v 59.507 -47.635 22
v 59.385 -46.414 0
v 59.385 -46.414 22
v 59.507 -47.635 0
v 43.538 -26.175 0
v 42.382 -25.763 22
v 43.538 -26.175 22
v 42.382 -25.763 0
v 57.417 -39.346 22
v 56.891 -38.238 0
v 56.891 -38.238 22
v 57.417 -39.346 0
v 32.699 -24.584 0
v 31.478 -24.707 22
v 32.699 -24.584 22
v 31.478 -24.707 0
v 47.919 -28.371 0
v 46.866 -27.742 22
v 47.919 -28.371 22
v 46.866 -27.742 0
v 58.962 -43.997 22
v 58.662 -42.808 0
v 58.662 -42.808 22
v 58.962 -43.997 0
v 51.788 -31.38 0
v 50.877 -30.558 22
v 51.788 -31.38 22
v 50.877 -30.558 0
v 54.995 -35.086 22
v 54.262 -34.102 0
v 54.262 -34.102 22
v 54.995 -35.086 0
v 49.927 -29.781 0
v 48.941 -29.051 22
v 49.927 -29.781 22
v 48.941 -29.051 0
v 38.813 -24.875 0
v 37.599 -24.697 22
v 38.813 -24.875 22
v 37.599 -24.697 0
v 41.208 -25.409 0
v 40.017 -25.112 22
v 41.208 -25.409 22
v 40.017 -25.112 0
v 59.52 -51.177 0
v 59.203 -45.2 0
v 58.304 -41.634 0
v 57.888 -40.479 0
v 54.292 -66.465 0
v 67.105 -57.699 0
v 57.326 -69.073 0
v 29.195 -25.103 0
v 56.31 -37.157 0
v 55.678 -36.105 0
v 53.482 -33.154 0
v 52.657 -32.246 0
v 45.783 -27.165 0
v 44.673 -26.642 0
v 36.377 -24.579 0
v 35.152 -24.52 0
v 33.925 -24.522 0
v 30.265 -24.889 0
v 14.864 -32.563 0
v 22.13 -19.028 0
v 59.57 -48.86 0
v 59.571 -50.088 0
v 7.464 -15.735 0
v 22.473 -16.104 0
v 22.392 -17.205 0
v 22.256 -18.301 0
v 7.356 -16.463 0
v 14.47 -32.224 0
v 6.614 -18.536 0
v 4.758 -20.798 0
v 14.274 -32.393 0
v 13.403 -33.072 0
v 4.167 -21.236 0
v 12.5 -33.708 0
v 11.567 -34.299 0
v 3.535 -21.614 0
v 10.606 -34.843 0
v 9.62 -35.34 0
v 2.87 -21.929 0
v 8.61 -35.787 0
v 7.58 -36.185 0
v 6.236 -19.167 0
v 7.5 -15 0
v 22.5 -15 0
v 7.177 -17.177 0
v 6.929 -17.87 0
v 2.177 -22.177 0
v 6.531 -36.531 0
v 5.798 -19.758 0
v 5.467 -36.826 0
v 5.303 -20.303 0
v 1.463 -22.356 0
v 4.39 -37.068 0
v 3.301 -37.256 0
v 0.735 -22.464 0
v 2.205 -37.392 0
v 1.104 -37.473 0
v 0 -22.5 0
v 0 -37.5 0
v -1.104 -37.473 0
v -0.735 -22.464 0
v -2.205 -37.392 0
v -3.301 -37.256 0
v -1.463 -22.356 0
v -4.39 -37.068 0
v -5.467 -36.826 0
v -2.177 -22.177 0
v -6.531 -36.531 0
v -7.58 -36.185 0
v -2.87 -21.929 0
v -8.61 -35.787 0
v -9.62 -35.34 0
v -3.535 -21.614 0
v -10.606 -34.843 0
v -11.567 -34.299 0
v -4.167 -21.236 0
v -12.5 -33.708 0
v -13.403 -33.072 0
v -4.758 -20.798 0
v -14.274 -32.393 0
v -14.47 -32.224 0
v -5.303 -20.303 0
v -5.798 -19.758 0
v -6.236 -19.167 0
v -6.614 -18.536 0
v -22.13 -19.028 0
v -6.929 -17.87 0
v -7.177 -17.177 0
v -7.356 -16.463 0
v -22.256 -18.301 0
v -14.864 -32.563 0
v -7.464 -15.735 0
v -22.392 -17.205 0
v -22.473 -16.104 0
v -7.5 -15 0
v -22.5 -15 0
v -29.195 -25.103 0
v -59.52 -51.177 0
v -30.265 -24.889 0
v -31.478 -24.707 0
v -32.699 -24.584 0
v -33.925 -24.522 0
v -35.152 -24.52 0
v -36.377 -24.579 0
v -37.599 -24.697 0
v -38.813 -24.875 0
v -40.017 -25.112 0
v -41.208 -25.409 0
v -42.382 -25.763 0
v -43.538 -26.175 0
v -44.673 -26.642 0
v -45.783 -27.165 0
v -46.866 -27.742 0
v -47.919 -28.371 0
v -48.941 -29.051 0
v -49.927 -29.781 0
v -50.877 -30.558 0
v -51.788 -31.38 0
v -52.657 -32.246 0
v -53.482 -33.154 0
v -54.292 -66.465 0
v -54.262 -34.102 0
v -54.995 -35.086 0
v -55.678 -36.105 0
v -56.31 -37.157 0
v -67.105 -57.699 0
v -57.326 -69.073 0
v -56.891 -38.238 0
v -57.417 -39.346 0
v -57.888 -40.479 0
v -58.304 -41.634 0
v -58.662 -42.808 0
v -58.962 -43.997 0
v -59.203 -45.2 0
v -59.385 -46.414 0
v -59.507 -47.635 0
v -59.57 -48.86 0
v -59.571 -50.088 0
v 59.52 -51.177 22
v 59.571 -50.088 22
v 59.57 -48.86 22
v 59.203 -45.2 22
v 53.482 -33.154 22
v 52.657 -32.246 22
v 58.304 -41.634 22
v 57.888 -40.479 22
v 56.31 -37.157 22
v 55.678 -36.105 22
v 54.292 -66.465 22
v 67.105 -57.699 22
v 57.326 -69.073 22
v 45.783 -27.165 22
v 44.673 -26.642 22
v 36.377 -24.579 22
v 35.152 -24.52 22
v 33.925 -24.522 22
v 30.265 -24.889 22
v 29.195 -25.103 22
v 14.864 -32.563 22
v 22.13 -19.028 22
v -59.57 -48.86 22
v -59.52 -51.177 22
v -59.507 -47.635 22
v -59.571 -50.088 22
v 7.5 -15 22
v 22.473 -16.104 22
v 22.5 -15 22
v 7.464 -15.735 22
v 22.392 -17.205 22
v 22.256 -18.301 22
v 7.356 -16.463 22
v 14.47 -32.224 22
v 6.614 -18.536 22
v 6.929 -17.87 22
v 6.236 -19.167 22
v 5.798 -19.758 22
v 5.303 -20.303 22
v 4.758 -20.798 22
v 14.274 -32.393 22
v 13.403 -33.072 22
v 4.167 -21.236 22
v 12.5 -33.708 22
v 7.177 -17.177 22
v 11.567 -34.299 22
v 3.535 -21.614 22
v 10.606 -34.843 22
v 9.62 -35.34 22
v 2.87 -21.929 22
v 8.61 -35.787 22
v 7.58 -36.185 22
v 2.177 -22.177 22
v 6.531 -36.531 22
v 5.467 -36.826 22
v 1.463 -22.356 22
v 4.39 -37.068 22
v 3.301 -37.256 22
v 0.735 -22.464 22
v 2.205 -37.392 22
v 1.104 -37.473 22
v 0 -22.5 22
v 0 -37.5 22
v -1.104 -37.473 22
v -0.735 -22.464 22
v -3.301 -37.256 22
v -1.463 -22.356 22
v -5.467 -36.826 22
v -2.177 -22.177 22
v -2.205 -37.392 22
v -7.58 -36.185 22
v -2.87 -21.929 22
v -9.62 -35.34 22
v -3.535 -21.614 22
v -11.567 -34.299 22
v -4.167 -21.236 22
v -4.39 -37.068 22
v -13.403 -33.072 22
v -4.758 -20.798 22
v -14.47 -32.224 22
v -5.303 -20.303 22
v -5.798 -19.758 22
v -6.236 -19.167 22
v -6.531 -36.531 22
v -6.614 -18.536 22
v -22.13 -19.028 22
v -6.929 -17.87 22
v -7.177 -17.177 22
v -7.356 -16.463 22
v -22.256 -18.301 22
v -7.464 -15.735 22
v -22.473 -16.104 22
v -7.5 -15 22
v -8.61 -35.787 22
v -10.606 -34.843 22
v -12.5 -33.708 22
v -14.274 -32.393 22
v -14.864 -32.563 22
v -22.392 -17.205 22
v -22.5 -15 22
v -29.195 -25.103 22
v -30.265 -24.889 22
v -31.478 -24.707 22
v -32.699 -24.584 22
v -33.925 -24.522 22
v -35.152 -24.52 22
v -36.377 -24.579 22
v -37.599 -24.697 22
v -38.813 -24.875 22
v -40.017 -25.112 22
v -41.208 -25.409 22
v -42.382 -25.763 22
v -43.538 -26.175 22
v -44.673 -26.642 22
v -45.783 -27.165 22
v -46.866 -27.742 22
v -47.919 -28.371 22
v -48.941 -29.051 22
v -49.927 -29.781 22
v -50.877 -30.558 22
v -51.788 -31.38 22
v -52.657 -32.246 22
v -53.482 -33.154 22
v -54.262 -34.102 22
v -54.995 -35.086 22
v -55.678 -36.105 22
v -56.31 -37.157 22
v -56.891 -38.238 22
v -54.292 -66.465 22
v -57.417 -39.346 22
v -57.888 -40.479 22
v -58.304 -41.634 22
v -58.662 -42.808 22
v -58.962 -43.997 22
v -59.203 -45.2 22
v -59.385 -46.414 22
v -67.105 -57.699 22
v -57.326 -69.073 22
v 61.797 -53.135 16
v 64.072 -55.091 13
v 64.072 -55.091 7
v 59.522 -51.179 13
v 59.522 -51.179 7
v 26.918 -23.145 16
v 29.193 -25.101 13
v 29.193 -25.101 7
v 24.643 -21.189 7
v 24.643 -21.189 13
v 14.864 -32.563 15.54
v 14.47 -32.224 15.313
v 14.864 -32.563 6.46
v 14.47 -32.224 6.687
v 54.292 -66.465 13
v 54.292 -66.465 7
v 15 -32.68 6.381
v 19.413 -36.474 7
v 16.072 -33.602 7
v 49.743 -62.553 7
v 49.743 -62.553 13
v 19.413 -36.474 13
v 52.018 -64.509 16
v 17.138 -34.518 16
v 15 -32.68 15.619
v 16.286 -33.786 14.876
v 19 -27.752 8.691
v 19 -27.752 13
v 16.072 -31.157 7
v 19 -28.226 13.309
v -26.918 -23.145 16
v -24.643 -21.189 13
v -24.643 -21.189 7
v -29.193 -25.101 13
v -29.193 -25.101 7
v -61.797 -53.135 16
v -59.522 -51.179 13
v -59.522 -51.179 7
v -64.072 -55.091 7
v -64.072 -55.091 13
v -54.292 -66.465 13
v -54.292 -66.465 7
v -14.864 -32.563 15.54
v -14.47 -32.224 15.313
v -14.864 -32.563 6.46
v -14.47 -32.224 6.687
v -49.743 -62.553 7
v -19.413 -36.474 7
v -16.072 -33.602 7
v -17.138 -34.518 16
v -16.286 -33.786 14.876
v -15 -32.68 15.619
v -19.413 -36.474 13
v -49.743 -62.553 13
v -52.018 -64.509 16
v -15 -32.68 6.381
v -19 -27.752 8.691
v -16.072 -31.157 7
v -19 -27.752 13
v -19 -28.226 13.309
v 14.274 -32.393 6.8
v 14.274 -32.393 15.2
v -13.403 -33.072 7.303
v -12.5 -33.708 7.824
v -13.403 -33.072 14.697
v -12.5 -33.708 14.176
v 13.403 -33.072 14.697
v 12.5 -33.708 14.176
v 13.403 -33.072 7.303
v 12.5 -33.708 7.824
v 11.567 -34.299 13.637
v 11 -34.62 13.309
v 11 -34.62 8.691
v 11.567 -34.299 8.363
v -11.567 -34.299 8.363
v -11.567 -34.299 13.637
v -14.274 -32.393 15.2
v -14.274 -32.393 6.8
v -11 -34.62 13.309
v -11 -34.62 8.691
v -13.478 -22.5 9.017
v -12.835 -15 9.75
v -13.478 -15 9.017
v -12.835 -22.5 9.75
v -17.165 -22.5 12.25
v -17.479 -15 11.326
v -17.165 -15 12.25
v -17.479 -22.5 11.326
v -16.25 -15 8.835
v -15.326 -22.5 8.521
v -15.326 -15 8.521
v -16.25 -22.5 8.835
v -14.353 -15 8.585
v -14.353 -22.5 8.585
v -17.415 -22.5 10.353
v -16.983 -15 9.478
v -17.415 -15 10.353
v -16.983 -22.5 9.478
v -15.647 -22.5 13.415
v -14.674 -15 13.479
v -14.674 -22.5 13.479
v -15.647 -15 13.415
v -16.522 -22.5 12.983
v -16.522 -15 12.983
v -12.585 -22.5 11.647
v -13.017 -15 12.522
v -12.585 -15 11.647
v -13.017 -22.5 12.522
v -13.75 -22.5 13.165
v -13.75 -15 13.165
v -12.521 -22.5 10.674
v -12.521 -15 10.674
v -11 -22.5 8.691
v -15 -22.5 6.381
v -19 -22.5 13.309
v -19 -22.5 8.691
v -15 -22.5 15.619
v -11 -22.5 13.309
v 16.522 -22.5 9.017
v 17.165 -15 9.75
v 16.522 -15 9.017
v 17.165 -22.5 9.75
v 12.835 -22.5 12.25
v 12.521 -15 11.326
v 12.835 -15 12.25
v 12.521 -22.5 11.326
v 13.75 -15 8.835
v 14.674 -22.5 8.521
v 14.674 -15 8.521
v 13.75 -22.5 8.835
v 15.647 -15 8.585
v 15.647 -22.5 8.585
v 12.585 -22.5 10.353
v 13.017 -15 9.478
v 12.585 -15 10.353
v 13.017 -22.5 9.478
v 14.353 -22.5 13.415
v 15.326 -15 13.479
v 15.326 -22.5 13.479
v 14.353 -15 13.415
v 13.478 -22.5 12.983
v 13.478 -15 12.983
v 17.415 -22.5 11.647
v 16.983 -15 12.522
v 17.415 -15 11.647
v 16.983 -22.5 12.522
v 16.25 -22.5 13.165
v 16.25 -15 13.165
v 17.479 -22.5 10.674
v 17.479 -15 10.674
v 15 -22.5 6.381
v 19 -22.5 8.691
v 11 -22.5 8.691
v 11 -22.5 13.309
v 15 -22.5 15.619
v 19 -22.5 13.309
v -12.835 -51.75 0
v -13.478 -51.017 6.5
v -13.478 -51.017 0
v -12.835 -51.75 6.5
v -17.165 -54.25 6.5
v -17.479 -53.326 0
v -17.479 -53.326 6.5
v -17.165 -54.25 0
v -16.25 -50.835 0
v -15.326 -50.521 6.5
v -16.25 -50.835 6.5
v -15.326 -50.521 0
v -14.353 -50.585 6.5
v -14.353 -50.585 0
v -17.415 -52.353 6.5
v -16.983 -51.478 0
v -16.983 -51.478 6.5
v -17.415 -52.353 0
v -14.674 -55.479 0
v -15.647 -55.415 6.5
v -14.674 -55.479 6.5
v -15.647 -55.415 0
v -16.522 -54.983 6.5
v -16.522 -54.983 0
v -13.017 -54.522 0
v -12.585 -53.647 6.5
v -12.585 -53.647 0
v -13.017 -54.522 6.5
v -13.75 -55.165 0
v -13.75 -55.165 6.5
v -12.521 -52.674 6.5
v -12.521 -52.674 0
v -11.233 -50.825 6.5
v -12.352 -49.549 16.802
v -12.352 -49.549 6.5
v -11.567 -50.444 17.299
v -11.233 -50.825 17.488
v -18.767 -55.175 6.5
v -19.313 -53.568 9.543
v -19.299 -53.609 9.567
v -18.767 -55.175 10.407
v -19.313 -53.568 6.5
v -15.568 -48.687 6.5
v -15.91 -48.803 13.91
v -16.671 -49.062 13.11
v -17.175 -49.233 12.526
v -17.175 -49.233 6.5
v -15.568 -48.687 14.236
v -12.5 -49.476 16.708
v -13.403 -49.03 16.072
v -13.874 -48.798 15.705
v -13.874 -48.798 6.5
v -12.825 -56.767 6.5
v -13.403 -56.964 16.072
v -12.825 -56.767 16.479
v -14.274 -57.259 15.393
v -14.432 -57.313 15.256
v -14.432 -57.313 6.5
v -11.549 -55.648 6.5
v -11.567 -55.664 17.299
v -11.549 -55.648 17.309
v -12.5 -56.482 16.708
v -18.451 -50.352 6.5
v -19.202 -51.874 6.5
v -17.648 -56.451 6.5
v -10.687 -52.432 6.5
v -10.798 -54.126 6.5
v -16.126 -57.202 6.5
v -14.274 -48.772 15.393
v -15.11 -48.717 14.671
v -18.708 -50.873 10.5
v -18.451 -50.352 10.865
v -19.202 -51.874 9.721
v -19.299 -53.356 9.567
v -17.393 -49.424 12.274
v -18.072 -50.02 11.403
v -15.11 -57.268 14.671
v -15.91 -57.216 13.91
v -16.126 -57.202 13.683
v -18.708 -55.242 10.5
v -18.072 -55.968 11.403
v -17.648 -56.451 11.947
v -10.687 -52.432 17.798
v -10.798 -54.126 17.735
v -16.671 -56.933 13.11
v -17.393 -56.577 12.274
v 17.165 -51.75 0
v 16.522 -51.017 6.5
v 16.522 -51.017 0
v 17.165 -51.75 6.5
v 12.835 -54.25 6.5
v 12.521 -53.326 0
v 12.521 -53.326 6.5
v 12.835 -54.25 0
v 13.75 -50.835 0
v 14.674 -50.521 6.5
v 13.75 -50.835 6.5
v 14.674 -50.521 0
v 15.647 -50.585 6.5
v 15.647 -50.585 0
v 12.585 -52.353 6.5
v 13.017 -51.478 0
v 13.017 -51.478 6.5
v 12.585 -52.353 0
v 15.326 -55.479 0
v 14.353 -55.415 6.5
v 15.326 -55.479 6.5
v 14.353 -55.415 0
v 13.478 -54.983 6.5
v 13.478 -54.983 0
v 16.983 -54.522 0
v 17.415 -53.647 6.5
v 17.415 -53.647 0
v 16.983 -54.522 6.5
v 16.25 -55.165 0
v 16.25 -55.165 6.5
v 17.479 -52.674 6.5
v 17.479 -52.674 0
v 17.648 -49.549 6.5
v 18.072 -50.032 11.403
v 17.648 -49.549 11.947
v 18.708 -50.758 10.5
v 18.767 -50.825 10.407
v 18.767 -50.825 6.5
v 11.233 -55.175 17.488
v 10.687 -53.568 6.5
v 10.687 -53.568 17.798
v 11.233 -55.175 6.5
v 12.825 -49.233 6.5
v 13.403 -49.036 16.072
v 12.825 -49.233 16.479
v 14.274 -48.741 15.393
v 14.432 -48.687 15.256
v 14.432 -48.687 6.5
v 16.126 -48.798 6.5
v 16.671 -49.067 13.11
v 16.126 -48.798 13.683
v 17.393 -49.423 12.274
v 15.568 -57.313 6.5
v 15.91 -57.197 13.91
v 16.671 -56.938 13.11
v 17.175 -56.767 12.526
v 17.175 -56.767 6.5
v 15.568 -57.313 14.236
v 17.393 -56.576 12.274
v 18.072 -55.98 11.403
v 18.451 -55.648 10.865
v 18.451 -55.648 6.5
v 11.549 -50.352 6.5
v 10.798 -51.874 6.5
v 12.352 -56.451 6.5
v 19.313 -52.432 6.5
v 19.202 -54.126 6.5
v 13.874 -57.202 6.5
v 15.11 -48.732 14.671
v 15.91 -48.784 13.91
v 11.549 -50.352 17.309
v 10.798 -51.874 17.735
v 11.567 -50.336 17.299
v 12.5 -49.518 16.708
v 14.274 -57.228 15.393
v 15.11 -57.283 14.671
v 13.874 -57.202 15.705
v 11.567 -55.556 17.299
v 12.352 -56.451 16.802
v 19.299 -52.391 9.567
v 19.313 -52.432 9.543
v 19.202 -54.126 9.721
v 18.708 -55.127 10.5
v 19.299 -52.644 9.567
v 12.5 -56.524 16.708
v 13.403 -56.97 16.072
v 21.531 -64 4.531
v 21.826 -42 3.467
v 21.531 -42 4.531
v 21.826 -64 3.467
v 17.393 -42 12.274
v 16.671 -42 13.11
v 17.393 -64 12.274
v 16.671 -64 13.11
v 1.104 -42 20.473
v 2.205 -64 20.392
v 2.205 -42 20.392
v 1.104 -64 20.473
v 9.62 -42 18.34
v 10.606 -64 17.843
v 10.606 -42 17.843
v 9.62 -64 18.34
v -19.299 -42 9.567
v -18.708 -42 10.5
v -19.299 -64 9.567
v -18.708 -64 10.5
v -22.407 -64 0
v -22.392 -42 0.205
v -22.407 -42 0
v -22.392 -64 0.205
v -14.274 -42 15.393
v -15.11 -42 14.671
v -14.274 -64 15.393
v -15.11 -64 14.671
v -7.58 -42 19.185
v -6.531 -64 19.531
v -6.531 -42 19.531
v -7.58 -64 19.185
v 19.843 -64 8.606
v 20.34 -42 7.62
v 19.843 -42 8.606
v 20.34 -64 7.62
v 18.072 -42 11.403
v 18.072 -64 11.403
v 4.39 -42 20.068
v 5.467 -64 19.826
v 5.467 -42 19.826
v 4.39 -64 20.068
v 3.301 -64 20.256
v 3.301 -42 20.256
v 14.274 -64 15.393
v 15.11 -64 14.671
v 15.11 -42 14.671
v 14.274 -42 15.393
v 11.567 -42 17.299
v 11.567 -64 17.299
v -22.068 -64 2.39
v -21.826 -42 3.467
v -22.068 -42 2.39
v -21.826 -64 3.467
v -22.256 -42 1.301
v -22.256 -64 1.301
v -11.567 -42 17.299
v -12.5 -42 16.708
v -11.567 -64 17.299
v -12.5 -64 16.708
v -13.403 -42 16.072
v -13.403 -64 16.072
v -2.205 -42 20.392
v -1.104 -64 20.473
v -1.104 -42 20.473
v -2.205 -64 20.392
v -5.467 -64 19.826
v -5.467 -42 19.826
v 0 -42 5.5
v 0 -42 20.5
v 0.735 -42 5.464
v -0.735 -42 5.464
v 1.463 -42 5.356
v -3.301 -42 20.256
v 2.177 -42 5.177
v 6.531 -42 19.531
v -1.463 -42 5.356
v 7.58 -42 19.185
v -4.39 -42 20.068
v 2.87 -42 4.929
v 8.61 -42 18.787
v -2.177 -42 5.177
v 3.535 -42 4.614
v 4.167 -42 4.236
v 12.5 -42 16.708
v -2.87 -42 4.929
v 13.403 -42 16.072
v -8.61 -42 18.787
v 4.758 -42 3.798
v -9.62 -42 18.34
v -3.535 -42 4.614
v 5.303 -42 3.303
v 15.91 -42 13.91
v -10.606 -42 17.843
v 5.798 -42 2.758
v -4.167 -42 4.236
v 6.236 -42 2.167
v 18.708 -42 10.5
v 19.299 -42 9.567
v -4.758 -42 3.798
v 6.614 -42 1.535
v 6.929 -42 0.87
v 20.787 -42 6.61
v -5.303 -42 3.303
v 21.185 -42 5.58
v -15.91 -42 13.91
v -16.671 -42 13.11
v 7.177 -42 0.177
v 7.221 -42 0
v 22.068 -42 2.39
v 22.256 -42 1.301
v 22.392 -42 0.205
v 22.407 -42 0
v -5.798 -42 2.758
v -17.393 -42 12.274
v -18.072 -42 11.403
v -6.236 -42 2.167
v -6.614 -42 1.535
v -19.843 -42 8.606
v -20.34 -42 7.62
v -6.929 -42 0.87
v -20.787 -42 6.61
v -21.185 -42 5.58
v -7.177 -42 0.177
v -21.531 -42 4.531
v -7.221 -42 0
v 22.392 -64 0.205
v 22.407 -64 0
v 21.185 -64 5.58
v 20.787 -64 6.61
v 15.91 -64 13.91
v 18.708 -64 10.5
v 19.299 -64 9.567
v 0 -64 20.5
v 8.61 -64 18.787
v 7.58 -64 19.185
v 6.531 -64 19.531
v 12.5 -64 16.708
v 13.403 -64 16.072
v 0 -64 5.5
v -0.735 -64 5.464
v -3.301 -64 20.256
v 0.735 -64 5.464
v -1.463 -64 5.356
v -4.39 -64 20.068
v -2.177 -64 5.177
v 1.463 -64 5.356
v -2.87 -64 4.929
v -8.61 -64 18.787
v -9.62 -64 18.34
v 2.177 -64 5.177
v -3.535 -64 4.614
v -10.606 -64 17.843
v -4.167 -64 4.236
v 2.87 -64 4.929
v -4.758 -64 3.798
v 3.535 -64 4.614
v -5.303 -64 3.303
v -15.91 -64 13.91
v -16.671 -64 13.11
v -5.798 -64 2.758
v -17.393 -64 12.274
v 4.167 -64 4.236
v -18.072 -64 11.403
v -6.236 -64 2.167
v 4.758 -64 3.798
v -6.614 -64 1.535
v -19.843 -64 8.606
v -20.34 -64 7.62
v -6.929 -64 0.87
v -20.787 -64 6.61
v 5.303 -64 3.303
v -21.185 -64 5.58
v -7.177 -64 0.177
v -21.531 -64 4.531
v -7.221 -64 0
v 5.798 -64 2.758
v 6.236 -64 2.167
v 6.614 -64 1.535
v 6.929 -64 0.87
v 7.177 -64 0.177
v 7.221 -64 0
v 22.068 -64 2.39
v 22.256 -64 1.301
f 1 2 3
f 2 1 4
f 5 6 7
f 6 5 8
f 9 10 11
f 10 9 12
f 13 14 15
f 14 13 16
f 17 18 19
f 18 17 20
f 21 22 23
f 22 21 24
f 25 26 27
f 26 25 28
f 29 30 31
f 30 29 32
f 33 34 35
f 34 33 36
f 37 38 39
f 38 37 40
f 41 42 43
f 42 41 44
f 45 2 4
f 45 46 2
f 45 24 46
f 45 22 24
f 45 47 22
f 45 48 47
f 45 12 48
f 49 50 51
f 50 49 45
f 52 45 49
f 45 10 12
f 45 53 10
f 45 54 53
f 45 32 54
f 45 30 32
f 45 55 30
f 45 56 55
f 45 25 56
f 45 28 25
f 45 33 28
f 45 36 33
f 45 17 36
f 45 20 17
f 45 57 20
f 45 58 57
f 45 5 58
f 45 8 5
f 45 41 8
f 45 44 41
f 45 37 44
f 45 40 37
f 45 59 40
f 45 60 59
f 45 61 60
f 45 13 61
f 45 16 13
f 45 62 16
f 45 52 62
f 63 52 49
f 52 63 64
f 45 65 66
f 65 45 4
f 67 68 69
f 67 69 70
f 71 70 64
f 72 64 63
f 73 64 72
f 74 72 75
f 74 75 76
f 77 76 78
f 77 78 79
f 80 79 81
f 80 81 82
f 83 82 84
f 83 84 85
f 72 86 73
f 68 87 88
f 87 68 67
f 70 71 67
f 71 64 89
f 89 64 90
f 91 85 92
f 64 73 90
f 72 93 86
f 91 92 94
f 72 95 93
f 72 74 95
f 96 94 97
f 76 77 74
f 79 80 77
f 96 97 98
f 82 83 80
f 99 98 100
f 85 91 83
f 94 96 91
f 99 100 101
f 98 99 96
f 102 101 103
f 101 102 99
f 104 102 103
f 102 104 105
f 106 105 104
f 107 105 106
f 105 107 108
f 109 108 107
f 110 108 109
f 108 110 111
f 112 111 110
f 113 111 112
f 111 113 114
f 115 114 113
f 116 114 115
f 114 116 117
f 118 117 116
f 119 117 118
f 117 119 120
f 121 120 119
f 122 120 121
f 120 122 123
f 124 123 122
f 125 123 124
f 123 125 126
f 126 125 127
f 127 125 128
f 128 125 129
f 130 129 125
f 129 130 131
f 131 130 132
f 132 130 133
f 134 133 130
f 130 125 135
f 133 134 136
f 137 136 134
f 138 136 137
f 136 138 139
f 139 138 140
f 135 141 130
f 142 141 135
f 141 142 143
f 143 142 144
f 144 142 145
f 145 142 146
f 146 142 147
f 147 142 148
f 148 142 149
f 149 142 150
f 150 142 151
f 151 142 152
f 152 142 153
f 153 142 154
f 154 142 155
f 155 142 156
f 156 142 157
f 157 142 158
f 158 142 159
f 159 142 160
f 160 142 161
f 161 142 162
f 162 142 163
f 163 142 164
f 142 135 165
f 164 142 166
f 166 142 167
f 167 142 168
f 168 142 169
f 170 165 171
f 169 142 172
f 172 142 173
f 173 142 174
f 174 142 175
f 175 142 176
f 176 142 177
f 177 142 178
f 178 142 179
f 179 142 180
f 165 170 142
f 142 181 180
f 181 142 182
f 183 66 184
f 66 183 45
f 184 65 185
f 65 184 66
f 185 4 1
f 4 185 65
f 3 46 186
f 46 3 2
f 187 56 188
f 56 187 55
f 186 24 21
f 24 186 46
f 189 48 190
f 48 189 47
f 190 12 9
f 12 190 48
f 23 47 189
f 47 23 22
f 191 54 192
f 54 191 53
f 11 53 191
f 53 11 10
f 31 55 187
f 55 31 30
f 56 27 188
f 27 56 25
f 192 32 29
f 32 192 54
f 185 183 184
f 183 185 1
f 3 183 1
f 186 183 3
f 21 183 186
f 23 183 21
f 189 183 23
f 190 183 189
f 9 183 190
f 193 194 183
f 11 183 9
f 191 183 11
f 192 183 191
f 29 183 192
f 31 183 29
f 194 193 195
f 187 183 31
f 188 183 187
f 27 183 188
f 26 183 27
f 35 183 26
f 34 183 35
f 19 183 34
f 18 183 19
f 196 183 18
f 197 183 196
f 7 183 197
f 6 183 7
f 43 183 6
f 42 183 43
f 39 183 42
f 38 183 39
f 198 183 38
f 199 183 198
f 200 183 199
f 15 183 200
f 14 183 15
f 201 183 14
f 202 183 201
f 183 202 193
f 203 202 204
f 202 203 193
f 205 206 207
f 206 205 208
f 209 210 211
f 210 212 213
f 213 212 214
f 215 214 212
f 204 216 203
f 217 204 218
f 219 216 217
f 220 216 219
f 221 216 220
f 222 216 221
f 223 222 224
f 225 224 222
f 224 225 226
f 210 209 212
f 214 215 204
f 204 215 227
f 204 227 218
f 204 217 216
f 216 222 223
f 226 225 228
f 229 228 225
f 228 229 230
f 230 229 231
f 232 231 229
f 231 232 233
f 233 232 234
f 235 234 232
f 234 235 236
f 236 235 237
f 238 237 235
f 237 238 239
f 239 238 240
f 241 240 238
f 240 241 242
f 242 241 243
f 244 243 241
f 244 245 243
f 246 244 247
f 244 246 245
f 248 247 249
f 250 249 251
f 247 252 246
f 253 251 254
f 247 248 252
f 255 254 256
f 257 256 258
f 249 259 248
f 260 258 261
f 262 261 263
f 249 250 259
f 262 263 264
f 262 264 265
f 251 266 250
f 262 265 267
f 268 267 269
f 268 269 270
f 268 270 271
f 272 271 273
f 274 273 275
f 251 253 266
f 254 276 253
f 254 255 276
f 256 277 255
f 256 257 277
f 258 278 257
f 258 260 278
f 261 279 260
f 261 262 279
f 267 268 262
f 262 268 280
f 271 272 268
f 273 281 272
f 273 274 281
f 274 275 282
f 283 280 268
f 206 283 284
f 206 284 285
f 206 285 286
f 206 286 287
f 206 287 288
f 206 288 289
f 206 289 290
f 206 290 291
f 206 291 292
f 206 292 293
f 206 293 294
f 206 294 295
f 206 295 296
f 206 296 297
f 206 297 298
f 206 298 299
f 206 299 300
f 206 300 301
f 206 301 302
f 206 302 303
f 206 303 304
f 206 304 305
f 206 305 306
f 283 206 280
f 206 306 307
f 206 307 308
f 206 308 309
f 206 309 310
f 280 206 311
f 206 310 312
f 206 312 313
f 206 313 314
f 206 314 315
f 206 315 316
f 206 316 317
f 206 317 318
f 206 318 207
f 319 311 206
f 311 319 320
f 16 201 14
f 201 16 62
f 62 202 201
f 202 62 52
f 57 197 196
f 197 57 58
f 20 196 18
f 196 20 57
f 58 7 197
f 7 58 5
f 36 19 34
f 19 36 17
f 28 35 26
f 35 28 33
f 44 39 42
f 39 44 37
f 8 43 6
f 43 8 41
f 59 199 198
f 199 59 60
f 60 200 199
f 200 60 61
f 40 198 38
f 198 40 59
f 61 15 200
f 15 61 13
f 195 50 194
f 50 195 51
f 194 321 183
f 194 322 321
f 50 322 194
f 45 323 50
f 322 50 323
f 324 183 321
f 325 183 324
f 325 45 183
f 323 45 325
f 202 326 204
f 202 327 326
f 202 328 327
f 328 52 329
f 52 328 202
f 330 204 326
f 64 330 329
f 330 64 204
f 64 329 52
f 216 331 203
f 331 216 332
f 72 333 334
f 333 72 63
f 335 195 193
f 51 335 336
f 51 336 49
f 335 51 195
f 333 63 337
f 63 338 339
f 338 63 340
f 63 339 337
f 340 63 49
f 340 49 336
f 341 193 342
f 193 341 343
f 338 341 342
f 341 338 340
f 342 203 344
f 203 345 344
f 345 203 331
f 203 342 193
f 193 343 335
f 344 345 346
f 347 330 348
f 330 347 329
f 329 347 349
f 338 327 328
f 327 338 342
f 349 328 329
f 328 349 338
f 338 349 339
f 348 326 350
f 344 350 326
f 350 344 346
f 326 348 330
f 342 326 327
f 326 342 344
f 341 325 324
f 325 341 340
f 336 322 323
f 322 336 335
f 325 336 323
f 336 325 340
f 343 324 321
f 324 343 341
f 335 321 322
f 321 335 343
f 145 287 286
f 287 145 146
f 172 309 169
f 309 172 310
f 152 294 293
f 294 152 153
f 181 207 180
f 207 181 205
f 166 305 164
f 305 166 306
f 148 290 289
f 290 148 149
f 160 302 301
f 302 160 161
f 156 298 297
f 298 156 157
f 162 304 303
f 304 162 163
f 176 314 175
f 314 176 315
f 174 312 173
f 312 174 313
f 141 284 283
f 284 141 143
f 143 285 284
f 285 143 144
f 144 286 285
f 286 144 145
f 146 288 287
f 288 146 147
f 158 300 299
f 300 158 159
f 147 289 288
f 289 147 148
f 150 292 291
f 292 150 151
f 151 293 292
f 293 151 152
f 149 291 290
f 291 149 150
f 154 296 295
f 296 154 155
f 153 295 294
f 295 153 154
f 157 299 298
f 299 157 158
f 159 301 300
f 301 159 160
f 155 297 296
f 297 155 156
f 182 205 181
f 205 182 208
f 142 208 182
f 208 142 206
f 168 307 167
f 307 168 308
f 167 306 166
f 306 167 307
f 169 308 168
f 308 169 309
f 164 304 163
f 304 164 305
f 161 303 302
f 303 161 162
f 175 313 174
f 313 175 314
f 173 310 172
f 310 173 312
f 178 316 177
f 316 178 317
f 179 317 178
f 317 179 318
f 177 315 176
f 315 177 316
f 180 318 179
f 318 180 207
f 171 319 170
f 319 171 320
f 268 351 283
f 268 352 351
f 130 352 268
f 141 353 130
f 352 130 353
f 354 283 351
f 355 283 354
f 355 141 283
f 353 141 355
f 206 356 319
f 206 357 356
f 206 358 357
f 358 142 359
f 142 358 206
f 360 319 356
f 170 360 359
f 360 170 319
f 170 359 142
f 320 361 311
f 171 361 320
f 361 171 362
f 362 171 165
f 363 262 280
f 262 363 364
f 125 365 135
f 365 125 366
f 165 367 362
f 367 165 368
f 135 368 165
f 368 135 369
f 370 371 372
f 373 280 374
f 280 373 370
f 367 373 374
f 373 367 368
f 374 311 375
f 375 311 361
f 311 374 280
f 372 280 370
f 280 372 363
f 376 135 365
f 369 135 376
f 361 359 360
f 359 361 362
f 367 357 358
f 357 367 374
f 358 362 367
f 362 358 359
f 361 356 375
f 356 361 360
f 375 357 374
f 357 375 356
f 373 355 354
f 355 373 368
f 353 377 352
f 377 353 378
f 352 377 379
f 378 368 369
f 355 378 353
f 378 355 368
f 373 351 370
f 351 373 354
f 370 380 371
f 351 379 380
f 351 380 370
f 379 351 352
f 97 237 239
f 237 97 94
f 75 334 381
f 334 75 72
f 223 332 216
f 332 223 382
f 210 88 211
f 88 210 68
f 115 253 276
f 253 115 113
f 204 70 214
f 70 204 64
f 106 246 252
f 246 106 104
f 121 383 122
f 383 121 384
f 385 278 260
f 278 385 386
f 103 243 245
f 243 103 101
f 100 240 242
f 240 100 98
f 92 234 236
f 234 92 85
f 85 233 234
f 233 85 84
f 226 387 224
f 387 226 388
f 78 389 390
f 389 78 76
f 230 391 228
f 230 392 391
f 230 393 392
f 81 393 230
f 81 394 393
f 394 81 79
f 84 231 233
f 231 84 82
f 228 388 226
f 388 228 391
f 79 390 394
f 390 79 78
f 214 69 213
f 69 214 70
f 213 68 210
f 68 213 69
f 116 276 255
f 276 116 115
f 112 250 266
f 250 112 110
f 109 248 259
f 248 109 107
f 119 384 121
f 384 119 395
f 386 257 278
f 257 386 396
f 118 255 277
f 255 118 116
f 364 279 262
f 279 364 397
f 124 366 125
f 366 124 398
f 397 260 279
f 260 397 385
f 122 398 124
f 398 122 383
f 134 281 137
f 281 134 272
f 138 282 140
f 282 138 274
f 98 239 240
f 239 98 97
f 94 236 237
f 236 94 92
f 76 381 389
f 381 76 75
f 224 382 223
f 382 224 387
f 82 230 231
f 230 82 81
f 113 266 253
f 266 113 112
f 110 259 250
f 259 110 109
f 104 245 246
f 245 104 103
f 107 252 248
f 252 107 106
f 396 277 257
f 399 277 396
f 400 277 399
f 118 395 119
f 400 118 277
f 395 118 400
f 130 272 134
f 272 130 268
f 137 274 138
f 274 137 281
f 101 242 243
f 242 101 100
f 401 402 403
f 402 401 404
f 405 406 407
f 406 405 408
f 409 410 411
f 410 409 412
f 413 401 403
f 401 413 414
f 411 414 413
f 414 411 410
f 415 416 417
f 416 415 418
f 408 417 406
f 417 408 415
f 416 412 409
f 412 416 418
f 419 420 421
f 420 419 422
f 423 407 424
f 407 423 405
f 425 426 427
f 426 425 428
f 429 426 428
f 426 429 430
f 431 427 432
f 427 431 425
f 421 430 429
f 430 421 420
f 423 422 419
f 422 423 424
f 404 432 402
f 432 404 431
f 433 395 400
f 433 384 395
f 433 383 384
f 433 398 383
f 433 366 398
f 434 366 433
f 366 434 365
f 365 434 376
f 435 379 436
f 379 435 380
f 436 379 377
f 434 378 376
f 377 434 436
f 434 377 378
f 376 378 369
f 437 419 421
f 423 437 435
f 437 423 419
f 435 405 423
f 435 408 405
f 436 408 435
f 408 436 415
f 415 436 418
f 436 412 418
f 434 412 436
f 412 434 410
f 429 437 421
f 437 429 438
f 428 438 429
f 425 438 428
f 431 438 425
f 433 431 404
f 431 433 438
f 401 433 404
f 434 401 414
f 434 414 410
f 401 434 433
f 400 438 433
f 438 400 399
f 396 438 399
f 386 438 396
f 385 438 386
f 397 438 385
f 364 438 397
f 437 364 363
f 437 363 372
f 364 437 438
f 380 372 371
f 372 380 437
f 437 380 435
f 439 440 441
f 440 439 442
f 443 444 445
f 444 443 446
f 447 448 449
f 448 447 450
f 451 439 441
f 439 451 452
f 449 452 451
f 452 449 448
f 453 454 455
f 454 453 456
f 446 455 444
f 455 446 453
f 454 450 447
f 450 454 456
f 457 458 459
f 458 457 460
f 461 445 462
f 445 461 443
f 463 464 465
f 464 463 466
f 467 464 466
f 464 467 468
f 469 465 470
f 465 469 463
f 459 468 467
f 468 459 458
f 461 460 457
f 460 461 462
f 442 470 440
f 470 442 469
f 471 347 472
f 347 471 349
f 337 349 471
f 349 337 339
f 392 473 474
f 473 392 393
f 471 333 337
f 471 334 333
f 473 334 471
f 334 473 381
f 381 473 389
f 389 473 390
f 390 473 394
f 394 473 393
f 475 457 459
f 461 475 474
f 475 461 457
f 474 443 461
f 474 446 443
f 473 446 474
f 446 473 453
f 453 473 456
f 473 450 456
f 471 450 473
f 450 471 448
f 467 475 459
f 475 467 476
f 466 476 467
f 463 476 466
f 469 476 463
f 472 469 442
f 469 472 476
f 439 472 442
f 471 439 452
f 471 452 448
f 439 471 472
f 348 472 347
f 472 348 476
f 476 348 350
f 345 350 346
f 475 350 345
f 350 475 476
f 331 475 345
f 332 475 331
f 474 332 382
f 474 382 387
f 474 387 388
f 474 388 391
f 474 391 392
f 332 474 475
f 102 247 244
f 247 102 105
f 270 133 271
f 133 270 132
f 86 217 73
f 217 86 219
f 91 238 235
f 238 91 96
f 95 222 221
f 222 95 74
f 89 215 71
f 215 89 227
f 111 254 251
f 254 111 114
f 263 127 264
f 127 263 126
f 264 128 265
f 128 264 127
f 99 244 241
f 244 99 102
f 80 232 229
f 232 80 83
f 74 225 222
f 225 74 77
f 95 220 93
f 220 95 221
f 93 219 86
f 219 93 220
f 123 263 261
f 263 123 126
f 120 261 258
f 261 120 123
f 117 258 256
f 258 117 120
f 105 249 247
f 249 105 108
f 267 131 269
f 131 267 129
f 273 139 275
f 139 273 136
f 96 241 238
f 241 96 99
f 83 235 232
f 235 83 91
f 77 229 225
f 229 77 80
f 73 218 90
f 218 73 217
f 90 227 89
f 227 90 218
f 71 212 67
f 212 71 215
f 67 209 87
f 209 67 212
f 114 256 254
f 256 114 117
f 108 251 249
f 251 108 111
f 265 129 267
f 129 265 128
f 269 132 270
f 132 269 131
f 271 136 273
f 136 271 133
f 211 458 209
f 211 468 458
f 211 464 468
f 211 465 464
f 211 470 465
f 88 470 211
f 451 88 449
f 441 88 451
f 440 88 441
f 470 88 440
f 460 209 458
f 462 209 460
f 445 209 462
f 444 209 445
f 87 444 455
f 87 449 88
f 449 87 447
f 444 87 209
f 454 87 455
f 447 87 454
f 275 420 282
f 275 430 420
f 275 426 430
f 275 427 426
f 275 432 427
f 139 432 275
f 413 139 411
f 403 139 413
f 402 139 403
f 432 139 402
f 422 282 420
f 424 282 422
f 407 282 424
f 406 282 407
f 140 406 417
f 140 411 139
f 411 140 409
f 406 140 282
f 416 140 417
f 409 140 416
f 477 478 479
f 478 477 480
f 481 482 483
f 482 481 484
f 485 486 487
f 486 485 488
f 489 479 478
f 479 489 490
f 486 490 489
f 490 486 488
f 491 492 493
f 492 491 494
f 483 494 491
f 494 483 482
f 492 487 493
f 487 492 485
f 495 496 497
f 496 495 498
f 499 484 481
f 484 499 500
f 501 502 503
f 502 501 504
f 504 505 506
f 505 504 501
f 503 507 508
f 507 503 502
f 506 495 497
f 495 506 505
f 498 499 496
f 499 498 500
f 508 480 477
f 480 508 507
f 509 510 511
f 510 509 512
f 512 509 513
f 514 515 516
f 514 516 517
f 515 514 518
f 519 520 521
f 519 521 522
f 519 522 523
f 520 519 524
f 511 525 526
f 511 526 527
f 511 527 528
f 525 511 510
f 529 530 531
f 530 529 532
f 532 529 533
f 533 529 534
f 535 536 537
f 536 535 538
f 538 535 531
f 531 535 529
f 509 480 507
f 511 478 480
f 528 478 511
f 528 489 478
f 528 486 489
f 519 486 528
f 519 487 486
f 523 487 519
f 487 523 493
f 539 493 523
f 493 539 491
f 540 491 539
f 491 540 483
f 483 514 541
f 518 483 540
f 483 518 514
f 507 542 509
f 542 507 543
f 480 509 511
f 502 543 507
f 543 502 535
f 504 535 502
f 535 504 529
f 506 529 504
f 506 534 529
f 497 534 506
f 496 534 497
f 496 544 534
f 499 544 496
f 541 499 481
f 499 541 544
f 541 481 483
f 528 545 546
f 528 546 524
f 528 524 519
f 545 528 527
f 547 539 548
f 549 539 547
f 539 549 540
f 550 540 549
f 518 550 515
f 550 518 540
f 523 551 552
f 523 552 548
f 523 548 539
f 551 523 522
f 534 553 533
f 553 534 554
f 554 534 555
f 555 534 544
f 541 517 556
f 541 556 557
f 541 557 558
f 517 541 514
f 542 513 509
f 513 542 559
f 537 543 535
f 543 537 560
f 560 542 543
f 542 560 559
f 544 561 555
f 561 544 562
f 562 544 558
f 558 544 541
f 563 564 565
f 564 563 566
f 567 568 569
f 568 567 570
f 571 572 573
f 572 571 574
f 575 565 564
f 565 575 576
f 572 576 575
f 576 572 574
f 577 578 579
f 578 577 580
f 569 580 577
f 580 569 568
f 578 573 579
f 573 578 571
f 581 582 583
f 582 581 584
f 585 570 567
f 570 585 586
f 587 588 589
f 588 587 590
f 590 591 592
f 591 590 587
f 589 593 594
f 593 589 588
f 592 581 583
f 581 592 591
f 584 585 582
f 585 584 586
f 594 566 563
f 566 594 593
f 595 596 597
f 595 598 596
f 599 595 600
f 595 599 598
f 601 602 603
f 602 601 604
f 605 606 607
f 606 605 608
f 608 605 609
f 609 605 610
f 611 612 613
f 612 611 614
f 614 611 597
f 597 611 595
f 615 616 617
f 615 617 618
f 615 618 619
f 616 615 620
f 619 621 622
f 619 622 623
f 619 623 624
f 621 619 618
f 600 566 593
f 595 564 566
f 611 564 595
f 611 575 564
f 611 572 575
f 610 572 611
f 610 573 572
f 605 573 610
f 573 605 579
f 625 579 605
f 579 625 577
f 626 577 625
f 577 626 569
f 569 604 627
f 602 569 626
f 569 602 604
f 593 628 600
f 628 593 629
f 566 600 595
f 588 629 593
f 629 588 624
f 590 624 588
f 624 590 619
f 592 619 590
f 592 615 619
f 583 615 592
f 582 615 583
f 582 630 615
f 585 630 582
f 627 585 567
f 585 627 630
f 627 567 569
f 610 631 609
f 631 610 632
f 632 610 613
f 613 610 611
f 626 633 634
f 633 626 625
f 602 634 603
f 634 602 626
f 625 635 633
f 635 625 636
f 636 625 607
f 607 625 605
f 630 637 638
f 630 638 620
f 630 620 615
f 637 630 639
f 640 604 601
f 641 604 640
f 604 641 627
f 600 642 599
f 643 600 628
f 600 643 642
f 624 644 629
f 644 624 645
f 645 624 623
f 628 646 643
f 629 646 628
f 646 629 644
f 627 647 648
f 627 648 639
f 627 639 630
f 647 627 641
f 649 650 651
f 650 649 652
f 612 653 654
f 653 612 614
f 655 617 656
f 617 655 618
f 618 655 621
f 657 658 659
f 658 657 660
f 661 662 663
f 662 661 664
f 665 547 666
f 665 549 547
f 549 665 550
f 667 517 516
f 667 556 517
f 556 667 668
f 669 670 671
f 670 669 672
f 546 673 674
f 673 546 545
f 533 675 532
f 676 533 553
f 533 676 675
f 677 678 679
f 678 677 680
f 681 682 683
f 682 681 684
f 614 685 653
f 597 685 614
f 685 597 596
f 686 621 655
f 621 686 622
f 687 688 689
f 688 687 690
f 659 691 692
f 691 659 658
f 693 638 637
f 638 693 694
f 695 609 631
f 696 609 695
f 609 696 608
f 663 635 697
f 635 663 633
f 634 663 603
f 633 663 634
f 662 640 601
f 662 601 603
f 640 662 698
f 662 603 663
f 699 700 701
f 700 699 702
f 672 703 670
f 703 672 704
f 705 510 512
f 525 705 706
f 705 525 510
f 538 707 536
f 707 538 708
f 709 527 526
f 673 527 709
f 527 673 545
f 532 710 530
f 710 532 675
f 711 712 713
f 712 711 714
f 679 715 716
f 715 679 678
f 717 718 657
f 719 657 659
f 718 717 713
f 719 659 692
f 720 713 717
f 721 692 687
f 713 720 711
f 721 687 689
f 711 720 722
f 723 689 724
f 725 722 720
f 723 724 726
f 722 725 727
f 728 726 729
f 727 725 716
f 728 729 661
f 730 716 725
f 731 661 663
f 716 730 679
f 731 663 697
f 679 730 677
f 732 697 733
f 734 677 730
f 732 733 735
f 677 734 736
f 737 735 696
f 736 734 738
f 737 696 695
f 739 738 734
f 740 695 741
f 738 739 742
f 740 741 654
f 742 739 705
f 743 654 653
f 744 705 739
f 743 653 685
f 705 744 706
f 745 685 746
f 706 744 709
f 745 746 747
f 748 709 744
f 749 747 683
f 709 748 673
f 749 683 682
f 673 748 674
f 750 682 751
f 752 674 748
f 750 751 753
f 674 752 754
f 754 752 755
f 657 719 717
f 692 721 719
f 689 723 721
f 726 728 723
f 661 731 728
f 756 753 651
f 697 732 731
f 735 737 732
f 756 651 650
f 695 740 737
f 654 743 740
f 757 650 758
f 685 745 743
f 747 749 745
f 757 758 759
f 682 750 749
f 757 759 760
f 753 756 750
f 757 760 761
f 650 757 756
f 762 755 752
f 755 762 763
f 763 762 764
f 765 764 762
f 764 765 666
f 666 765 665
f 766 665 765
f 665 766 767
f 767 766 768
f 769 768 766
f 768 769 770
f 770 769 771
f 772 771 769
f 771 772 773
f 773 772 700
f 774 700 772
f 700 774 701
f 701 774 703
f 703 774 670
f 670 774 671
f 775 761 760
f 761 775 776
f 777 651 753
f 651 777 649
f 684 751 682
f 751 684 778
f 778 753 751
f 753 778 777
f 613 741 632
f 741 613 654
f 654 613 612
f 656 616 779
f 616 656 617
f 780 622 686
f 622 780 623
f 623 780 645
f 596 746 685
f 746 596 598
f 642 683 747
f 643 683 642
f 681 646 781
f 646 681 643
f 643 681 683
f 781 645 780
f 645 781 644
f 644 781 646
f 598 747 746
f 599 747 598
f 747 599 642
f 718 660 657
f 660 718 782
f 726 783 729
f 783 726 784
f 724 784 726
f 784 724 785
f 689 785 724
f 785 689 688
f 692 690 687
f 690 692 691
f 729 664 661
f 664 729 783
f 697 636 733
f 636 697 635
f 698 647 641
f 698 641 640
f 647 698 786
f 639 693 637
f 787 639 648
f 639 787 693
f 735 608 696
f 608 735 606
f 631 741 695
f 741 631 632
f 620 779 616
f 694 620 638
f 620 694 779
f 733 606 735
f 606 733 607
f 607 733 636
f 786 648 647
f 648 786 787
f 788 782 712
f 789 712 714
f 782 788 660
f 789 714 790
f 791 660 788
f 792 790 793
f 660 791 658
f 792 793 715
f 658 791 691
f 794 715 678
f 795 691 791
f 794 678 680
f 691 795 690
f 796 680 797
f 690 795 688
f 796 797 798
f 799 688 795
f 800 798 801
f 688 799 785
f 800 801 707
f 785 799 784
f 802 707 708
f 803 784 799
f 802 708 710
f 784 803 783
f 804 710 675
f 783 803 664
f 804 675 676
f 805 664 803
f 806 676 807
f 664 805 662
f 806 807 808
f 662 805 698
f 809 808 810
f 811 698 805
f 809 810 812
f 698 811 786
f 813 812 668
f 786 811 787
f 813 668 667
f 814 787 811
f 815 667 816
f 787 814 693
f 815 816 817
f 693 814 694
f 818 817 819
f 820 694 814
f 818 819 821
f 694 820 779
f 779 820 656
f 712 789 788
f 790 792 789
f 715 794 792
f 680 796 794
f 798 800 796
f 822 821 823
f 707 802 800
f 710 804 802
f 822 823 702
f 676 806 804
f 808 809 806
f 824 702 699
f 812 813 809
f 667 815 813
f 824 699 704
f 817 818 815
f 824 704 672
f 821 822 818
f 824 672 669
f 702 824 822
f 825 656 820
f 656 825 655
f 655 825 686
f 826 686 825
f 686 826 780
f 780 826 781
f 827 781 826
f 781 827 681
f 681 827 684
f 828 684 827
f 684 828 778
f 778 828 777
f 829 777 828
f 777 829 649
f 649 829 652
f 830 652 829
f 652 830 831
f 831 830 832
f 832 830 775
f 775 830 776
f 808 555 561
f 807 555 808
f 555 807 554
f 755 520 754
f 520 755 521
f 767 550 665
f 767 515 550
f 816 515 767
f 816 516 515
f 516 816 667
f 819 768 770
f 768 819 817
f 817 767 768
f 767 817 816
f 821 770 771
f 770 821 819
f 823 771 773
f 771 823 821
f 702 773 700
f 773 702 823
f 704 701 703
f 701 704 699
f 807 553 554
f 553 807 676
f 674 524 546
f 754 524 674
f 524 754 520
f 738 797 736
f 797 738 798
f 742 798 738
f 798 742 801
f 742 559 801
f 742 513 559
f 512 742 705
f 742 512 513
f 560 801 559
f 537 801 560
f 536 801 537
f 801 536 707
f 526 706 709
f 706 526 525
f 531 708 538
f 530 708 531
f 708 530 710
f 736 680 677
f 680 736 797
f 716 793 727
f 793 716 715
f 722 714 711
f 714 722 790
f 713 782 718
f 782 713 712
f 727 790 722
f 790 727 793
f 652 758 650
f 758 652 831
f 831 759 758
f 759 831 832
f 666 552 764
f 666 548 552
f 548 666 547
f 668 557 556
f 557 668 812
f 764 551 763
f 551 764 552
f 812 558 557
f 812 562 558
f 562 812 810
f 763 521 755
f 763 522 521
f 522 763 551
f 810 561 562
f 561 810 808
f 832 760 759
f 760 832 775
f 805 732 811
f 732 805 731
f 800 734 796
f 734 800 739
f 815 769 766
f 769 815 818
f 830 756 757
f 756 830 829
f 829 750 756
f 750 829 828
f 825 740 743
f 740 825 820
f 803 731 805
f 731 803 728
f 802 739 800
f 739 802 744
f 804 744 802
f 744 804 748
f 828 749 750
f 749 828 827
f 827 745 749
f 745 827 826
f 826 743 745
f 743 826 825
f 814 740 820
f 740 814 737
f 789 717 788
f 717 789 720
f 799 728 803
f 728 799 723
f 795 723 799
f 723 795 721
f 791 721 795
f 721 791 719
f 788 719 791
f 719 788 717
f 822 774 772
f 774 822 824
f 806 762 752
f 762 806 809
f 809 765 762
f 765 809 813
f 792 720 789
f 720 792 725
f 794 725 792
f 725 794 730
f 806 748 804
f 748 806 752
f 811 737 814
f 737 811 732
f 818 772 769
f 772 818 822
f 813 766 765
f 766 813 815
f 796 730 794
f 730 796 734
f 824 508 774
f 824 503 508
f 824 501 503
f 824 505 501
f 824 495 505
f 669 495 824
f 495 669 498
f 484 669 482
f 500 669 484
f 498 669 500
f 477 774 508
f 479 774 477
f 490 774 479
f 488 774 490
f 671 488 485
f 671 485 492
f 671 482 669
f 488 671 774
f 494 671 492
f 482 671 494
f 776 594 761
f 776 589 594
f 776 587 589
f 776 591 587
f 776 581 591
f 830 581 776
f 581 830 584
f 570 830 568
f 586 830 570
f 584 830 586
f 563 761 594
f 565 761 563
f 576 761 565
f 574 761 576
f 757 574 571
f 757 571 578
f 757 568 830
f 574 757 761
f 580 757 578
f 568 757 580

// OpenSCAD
winkel = 81.38;
stangendurchmesser = 15;
routerbreite = 80;
hoehe = 22;
fittingdurchmesser = 50;
fittingbreite = 40;
dicke = 15;

module fitting() {
  difference() {
    union() {
      translate([0, -sqrt((fittingdurchmesser/2)*(fittingdurchmesser/2)-((fittingbreite/2)*(fittingbreite/2))), 0]) {
        cylinder(d=fittingdurchmesser, h=hoehe, $fn=128);
      }
      translate([-fittingdurchmesser/2-5, -dicke, 0]) {
        cube([fittingdurchmesser+10, dicke, hoehe]);
      }
    }
    translate([-fittingdurchmesser/2-1, -fittingdurchmesser, -1]) {
      cube([fittingdurchmesser+2, fittingdurchmesser-dicke
, hoehe+9]);
    }
    for(i=[-1, 1]) {
      translate([i*(fittingbreite/2+3), -dicke/2, 10]) {
        cube([6, dicke+2, 6], center=true);
      }
      translate([i*(fittingbreite/2+3), -dicke/2, 13]) {
        rotate([0, 45, 0]) {
          cube([sqrt(2*3*3), dicke+2, sqrt(2*3*3)], center=true);
        }
      }
    }
  }
}

module screws() {
  for(i=[-1, 1]) {
    translate([i*(stangendurchmesser/2+dicke/2), -15-stangendurchmesser/2-dicke, hoehe/2]) {
      rotate([-90, 30, 0]) {
        translate([0, 0, stangendurchmesser+2*dicke-34]) {
          cylinder(d=5, h=stangendurchmesser/2+dicke, $fn=16);
        }
        cylinder(d=2*4/cos(30), h=stangendurchmesser+2*dicke-30, $fn=6);
        translate([0, 0, stangendurchmesser+2*dicke-14]) {
          cylinder(d=8.7, h=stangendurchmesser+2*dicke-30, $fn=16);
        }
        
      }
    }
  }
}

module holder() {
  difference() {
    union() {
      rotate([0, 0, -winkel/2]) {
        translate([routerbreite/2+stangendurchmesser/2+dicke-4, 0, 0]) {
          fitting();
        }
      }
      rotate([0, 0, winkel/2]) {
        translate([-routerbreite/2-stangendurchmesser/2-dicke+4, 0, 0]) {
          fitting();
        }
      }
      translate([0, -15, 0]) {
        cylinder(d=stangendurchmesser+2*dicke, h=hoehe, $fn=128);
      }
    }
    translate([0, -15, -1]) {
      cylinder(d=stangendurchmesser, h=hoehe+2, $fn=64);
    }
    translate([-stangendurchmesser/2-dicke-1, -15, -1]) {
      cube([stangendurchmesser+2*dicke+2, stangendurchmesser/2+dicke+1, hoehe+2]);
    }
    screws();
  }
}

module clamp() {
  difference() {
    translate([0, -15, 0]) {
      cylinder(d=stangendurchmesser+2*dicke, h=hoehe, $fn=128);
    }
    translate([0, -15, -1]) {
      cylinder(d=stangendurchmesser, h=hoehe+2, $fn=64);
    }
    translate([-stangendurchmesser/2-dicke-1, -15-stangendurchmesser/2-dicke-1, -1]) {
      cube([stangendurchmesser+2*dicke+2, stangendurchmesser/2+dicke+1+2, hoehe+2]);
    }
    screws();
  }
}

holder();
translate([0, -42, 13]) {
  rotate([90, 0, 0]) {
    clamp();
  }
}
